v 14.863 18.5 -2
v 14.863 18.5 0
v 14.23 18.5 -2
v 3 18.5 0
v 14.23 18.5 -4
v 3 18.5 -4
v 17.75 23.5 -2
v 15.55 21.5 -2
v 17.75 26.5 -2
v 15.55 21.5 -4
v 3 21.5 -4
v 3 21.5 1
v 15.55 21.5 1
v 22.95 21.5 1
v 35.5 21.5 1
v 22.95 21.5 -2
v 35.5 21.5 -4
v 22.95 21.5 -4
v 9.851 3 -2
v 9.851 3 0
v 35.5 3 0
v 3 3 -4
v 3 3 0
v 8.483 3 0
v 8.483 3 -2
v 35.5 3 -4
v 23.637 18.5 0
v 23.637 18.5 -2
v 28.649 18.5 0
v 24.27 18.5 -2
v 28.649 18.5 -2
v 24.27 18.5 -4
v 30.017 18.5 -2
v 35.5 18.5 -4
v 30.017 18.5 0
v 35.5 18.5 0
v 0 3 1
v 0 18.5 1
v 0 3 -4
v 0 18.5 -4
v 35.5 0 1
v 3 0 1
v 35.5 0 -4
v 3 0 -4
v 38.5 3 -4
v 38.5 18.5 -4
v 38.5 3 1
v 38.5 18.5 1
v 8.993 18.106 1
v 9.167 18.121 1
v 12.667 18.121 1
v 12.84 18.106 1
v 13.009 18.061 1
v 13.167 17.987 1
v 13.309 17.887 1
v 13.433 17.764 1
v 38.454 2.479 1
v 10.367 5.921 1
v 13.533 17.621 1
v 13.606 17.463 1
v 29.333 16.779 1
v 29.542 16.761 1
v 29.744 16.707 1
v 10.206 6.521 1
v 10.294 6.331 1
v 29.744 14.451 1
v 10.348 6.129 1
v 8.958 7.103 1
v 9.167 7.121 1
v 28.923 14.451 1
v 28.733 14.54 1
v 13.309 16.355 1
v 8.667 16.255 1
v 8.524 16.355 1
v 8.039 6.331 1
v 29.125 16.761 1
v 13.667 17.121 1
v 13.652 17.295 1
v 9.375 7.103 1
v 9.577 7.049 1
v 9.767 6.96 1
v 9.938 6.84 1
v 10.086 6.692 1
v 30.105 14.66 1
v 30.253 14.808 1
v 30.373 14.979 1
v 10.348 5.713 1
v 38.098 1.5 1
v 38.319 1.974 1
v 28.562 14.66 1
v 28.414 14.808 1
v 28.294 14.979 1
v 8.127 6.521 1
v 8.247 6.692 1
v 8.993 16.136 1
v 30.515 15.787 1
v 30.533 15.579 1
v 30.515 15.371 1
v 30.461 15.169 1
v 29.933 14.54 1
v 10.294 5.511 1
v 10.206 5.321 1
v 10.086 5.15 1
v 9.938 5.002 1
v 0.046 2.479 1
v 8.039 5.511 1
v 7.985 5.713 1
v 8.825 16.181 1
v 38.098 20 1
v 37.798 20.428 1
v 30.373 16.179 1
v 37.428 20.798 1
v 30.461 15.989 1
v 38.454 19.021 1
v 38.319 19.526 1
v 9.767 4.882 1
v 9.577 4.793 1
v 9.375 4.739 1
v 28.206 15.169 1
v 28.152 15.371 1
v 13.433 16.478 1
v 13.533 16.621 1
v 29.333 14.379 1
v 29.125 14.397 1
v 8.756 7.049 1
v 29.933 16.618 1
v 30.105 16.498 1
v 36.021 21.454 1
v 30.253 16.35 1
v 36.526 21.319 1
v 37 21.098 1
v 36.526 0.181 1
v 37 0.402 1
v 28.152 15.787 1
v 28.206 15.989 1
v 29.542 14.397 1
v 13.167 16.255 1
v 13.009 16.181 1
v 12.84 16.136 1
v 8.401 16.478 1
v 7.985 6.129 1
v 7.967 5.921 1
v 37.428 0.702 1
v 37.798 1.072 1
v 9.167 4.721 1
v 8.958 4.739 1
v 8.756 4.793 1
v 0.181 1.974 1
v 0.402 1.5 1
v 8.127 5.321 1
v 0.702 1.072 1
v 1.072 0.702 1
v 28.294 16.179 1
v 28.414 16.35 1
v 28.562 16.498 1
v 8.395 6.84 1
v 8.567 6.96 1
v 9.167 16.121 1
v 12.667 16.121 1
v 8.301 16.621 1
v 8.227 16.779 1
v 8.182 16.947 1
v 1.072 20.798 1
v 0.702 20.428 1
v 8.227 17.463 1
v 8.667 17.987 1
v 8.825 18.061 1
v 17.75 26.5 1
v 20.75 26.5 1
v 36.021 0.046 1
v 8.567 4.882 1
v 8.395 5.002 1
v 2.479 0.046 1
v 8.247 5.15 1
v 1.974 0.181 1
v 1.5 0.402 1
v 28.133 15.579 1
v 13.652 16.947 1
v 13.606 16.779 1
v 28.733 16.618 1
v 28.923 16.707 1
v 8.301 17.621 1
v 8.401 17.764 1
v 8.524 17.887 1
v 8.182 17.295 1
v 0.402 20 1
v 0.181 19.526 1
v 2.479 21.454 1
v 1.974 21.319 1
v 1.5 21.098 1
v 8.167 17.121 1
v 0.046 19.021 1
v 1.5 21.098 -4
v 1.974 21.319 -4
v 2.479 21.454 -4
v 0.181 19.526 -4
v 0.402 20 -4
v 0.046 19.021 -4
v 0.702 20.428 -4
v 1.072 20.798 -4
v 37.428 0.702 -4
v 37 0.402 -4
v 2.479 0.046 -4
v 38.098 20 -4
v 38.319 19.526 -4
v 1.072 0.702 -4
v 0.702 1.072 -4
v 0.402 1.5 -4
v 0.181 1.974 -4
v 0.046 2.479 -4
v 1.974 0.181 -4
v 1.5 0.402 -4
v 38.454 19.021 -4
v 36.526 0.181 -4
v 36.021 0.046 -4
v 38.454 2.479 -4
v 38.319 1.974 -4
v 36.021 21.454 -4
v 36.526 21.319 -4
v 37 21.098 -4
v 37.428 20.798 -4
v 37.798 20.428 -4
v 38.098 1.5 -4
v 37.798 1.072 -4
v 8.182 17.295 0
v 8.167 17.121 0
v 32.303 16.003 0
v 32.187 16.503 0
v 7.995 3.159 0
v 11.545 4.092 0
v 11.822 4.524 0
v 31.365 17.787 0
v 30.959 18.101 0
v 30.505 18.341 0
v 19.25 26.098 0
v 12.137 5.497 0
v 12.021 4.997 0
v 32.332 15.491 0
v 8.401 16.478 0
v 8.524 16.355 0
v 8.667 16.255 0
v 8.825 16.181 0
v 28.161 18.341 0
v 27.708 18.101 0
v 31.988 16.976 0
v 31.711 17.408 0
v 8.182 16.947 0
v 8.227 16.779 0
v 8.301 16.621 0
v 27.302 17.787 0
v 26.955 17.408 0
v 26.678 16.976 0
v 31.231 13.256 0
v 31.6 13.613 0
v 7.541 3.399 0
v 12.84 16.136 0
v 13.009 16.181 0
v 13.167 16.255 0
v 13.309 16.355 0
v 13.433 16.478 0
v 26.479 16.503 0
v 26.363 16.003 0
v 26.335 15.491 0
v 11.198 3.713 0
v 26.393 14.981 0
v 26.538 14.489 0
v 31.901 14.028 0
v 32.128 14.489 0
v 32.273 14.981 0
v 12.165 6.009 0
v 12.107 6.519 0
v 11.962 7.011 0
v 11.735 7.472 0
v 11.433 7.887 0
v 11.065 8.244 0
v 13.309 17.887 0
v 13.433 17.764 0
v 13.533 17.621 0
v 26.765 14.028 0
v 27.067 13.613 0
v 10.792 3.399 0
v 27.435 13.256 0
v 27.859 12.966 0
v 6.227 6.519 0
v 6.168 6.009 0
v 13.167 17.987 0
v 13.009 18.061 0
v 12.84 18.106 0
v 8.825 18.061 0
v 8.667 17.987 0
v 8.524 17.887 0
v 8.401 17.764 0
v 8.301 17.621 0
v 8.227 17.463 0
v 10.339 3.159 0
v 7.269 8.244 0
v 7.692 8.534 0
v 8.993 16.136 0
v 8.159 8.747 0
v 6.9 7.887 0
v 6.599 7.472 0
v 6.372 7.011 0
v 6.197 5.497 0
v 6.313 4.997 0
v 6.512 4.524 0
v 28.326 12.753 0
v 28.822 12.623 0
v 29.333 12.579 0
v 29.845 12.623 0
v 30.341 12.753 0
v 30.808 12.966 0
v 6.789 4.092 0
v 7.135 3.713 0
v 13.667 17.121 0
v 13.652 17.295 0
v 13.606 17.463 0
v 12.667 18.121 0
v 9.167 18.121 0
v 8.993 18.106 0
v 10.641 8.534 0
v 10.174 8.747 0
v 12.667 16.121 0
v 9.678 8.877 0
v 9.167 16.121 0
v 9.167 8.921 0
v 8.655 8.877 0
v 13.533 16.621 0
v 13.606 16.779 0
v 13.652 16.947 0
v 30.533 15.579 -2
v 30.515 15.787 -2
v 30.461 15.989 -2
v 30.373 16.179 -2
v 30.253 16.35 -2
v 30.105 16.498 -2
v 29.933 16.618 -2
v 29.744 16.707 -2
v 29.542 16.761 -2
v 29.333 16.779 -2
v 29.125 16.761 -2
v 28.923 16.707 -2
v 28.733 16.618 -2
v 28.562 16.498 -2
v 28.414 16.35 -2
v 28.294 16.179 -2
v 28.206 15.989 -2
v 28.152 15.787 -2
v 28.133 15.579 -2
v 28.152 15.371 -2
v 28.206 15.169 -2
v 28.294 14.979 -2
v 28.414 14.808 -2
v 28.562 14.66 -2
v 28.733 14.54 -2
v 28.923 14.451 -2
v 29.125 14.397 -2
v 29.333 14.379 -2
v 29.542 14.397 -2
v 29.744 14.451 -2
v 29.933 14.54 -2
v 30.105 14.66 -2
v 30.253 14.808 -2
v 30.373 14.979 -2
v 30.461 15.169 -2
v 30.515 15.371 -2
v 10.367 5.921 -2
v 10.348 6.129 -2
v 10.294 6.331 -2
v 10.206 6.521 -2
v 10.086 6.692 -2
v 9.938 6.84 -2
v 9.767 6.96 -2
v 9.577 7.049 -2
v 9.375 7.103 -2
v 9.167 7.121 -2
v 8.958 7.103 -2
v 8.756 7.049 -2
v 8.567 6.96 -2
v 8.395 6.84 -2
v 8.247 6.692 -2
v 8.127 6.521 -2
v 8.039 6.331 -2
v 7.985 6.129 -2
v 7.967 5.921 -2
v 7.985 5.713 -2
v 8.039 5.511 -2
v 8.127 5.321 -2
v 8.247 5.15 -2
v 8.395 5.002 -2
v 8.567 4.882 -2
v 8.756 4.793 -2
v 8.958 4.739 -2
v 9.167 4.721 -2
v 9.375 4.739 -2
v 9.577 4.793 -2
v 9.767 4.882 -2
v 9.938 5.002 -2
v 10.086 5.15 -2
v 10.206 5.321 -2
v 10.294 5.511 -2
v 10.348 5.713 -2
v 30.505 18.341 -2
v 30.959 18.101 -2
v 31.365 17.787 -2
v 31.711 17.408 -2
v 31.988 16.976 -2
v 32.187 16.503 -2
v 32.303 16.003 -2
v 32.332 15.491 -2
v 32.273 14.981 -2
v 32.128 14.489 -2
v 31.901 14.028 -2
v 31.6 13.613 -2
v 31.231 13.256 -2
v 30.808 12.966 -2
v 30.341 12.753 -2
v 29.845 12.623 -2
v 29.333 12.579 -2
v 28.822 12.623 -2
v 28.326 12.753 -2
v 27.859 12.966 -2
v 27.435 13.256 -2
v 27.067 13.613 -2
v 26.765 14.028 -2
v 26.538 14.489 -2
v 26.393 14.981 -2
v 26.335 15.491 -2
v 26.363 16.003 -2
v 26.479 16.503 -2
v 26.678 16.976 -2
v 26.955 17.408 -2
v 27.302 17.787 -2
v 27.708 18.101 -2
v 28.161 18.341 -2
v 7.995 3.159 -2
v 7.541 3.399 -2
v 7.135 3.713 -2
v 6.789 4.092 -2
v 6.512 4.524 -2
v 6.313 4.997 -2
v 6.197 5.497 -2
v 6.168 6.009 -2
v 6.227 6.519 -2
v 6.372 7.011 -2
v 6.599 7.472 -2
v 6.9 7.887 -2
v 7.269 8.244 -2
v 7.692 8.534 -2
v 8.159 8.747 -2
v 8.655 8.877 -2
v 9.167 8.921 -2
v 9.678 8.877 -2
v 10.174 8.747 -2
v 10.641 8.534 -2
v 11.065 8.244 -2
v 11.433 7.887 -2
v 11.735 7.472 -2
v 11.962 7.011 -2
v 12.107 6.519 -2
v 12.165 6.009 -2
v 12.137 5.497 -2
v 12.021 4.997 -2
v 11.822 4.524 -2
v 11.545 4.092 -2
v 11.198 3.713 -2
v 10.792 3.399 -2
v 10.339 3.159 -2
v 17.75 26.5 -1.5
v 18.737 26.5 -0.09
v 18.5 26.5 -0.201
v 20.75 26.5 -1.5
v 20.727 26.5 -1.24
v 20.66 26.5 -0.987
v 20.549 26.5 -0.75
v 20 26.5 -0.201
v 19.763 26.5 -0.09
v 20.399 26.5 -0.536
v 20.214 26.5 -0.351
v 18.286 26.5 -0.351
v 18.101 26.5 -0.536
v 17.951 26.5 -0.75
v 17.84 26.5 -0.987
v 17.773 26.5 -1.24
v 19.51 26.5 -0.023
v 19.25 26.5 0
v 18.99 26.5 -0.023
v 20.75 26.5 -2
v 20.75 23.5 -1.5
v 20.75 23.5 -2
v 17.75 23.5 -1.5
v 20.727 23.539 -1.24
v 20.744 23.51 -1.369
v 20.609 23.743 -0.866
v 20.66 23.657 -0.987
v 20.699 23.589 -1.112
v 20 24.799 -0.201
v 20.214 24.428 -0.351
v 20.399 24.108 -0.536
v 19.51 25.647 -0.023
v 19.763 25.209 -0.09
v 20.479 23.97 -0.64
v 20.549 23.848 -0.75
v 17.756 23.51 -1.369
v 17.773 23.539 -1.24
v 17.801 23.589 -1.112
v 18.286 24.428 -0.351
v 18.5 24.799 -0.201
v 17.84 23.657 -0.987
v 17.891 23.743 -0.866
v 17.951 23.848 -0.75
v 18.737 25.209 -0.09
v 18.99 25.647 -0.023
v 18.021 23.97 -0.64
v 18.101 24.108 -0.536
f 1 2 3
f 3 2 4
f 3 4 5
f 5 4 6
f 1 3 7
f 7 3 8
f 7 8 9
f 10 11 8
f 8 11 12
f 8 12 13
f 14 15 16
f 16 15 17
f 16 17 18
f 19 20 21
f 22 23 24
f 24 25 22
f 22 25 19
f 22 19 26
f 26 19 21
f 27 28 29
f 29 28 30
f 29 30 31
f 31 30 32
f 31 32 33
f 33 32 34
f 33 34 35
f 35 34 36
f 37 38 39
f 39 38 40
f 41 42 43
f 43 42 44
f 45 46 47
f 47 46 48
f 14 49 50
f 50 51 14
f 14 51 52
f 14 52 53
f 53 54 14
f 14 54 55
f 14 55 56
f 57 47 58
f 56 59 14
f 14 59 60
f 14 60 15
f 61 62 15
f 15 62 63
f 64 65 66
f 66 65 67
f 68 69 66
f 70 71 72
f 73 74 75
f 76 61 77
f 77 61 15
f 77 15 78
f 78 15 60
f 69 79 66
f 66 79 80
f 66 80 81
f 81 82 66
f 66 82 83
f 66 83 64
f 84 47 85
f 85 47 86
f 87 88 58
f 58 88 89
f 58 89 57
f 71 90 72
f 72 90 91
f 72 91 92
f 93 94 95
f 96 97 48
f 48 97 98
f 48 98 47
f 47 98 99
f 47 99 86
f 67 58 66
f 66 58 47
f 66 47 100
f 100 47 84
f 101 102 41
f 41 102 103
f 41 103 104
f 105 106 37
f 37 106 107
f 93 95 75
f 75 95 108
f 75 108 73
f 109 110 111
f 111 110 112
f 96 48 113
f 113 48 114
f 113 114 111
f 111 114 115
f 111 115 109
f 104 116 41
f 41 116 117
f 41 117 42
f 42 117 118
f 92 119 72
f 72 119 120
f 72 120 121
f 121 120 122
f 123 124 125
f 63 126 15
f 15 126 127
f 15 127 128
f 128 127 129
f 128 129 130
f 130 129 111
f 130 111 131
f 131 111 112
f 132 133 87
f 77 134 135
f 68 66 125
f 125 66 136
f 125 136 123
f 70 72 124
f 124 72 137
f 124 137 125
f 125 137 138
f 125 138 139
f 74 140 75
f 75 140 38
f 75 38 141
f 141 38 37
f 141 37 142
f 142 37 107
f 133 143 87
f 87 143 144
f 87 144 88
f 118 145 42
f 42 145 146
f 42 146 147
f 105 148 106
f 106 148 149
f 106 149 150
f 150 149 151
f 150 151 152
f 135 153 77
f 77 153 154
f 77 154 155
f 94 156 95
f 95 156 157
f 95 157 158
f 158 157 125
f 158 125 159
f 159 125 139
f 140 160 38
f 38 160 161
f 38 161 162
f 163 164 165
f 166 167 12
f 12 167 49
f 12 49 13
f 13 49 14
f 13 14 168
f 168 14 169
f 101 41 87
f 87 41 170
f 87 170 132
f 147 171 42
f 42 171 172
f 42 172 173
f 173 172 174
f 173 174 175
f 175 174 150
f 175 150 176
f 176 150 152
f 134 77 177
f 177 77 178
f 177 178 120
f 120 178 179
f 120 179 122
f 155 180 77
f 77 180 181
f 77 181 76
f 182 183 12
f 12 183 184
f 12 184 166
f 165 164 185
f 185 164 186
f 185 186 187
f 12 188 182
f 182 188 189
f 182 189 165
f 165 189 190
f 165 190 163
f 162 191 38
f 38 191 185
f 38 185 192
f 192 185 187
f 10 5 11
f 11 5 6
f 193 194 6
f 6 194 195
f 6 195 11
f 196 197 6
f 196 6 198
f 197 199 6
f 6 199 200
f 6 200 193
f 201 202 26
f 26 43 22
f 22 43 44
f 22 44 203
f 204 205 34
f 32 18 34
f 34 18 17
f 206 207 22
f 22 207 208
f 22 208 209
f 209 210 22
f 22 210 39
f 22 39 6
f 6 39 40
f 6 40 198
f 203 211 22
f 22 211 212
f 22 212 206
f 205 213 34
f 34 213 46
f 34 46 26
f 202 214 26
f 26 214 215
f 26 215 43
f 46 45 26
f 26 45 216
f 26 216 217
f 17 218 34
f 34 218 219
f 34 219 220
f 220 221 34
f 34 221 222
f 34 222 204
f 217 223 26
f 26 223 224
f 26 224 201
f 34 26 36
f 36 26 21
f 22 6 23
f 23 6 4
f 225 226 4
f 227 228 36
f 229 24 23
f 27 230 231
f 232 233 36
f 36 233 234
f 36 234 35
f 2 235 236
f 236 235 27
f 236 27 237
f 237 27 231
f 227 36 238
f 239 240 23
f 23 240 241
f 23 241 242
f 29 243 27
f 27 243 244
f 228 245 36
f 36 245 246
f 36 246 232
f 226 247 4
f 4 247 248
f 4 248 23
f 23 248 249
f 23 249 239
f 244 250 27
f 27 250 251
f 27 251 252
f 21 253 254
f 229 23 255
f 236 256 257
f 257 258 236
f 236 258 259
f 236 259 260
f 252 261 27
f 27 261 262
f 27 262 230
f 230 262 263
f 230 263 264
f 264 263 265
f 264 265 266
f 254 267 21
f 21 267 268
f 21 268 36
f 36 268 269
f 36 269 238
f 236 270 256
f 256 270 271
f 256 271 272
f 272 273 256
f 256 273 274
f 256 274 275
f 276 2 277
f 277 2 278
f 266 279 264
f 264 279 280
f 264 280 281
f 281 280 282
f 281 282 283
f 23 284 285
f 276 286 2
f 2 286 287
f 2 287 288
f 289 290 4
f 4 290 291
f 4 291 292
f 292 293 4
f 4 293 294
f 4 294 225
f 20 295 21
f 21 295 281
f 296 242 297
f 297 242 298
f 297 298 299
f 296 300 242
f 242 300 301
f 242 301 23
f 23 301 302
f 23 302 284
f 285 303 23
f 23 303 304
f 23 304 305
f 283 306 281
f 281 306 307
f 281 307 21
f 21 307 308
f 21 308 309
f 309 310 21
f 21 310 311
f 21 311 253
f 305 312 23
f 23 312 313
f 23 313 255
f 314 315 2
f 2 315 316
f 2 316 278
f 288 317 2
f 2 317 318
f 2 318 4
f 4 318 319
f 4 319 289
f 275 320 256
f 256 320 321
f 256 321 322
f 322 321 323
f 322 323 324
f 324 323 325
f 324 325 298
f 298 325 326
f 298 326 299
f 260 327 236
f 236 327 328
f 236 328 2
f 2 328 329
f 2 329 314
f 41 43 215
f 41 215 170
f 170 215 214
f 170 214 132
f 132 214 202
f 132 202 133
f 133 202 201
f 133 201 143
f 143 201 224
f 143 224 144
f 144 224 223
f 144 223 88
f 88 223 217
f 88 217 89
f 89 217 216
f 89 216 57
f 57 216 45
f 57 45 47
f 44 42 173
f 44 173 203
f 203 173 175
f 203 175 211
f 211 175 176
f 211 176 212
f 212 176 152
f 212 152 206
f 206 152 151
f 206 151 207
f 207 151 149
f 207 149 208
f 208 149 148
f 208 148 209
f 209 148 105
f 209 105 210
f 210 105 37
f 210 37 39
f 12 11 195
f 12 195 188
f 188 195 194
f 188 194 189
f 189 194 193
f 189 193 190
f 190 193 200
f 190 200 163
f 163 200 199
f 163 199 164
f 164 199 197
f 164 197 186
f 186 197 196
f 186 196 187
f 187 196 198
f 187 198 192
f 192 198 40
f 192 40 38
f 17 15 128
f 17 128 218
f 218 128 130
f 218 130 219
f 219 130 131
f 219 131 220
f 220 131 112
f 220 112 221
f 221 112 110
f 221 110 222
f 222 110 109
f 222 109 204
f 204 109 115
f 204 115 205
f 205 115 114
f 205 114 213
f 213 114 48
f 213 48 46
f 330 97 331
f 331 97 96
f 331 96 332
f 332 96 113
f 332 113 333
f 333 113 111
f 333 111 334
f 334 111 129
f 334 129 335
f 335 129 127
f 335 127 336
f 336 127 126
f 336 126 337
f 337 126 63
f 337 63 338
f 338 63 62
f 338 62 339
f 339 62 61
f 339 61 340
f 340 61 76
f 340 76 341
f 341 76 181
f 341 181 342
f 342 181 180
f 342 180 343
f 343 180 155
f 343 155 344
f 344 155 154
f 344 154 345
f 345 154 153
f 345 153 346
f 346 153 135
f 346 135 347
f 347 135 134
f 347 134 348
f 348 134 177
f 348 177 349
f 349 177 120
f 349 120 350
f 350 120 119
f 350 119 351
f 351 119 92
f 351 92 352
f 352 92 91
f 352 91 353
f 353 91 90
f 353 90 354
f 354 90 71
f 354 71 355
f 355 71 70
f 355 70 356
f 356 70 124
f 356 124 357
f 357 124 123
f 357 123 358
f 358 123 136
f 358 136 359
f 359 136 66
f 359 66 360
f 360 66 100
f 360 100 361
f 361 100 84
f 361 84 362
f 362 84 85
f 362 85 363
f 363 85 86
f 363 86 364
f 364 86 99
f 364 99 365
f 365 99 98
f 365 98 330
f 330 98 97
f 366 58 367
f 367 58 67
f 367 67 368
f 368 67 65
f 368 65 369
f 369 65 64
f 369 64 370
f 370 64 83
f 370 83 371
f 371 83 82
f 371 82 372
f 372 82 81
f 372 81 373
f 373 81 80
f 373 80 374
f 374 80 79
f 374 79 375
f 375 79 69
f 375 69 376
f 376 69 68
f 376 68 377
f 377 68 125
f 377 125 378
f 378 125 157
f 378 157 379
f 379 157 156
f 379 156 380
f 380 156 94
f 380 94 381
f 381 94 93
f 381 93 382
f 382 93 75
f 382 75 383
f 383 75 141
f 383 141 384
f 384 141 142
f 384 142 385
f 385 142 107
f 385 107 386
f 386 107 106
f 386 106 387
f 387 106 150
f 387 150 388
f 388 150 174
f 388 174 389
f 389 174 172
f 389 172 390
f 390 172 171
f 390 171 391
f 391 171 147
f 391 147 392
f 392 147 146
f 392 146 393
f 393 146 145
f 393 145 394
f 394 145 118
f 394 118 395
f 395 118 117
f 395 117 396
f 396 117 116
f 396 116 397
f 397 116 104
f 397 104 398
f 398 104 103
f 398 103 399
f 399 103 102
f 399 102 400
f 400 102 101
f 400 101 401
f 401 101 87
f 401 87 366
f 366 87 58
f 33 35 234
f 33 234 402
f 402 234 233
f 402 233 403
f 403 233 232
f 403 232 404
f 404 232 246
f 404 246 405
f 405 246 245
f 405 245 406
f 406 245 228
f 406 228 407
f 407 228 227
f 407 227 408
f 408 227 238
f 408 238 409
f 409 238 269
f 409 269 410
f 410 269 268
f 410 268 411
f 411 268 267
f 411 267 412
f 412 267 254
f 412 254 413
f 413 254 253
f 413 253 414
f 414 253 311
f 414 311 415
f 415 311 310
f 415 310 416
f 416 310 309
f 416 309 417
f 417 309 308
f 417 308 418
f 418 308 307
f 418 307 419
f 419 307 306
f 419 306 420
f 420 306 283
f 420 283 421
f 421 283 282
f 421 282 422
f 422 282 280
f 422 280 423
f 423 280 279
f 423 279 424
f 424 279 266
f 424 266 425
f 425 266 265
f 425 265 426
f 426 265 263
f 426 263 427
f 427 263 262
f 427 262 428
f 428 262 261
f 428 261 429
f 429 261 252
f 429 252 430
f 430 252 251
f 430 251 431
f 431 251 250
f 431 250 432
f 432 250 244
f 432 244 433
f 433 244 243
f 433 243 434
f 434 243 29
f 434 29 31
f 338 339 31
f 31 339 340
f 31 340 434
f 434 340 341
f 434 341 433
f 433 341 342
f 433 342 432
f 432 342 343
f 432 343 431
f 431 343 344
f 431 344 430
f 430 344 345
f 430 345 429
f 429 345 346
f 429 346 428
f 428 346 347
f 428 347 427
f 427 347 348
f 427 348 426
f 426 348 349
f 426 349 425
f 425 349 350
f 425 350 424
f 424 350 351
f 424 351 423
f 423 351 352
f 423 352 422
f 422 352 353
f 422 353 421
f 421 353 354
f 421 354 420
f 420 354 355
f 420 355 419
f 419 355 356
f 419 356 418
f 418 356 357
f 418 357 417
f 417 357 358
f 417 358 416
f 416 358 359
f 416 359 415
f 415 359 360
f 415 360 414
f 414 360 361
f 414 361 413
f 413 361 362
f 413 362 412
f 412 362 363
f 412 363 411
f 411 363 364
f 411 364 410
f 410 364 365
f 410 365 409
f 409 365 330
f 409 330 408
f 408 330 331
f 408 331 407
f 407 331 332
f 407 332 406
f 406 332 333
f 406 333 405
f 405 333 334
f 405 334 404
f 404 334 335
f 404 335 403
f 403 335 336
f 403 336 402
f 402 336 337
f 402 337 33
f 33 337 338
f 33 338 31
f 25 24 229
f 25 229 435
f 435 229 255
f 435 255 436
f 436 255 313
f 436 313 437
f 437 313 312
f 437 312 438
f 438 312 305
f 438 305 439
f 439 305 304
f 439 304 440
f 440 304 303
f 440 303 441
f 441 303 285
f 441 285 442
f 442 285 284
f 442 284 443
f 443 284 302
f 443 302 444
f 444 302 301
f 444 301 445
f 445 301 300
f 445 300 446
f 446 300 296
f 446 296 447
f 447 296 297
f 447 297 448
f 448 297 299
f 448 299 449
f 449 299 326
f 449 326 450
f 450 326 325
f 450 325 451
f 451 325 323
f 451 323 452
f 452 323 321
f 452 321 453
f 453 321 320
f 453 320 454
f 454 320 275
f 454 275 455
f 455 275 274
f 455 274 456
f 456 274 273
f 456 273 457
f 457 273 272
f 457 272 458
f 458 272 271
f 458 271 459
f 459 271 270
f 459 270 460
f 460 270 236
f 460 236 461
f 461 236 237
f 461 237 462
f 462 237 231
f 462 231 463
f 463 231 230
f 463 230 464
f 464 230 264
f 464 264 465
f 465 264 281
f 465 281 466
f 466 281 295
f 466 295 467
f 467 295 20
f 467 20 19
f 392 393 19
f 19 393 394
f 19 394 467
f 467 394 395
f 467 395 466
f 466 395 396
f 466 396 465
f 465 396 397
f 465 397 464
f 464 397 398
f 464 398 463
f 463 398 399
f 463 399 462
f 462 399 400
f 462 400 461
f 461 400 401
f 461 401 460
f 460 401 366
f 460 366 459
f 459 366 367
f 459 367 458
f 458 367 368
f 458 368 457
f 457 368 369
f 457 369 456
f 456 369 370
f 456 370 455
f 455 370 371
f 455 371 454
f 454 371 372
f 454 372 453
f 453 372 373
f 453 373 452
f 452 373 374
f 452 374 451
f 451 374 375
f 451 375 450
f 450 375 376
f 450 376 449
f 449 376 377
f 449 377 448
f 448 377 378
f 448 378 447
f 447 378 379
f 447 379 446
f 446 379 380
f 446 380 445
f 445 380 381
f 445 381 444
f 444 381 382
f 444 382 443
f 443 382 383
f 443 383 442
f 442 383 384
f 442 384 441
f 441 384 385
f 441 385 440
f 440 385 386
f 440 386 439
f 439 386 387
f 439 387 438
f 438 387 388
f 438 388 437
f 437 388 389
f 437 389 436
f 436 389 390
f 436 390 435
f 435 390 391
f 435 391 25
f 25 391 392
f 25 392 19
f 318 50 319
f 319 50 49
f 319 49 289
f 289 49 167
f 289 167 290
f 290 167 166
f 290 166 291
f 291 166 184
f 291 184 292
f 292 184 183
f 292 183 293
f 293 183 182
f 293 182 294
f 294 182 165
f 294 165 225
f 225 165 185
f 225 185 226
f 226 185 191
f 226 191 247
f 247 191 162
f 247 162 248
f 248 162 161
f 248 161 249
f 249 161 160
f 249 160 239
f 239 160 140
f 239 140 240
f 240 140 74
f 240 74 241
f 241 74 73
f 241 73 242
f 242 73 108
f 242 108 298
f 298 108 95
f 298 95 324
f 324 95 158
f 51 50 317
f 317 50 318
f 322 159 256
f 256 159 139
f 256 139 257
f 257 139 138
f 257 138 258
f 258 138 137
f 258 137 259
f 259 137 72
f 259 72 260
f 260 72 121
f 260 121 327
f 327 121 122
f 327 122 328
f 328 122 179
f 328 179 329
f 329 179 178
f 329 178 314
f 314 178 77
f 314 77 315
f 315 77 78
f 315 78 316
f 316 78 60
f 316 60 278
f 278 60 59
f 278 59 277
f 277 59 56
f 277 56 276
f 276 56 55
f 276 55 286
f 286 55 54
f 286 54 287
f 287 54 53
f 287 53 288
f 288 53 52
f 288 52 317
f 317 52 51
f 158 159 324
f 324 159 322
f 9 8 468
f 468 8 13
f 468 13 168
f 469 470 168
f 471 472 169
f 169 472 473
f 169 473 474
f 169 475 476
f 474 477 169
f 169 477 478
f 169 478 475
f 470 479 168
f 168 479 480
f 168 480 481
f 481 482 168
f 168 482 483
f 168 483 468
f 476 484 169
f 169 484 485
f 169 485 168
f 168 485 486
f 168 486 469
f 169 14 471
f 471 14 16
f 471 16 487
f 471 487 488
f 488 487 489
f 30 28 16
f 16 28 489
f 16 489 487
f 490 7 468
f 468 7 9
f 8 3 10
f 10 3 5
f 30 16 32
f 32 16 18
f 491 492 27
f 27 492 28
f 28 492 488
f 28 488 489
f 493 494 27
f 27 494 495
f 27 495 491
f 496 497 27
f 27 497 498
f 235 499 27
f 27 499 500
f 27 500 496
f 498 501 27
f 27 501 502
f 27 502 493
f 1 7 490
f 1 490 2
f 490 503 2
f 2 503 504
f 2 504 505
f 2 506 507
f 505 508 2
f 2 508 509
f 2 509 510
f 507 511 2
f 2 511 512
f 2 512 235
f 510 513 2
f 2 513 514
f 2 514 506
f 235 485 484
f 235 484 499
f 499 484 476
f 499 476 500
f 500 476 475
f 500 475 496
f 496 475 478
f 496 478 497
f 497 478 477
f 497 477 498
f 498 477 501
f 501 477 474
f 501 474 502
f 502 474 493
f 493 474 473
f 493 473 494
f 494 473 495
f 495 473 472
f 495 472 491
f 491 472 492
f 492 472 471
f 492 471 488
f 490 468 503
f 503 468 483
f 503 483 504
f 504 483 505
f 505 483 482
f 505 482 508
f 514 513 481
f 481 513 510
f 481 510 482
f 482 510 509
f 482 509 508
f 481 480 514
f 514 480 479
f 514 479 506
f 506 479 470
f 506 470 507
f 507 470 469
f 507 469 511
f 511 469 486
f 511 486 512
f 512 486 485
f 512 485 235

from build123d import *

# Parameters (mm, degrees)
SKICA1_W                 = 38.5
SKICA1_H                 = 21.5
P_IDAT_VYSUNUT_M1_DEPTH  = 1
SKICA2_W                 = 38.5
SKICA2_H                 = 21.5
SKICA2_W_2               = 32.5
SKICA2_H_2               = 15.5
P_IDAT_VYSUNUT_M2_DEPTH  = 4
ZAOBLIT1_R               = 3
SKICA3_R                 = 1.2
ODEBRAT_VYSUNUT_M1_DEPTH = 2
SKICA4_R                 = 1.2
P_IDAT_VYSUNUT_M5_DEPTH  = 2
ODEBRAT_VYSUNUT_M2_DEPTH = 2
P_IDAT_VYSUNUT_M6_DEPTH  = 1
P_IDAT_VYSUNUT_M7_DEPTH  = 2
ODEBRAT_VYSUNUT_M5_DEPTH = 2
SKICA10_W                = 3
SKICA10_H                = 3
ODEBRAT_VYSUNUT_M6_DEPTH = 2
ZKOSEN_2_SIZE            = 2.886751346
ZKOSEN_2_SIZE_2          = 5
ZKOSEN_3_SIZE            = 2.886751346
ZKOSEN_3_SIZE_2          = 5
ZAOBLIT4_R               = 1.5


with BuildPart() as part:
    # Skica1 → Přidat vysunutím1 (new body)
    with BuildSketch(Plane.XY):
        with Locations((19.25, 10.75)):
            Rectangle(SKICA1_W, SKICA1_H)
    extrude(amount=P_IDAT_VYSUNUT_M1_DEPTH)

    # Skica2 → Přidat vysunutím2 (add)
    with BuildSketch(Plane(origin=(0, 0, 0), x_dir=(-1, 0, 0), z_dir=(0, 0, -1))):
        with Locations((-19.25, 10.75)):
            Rectangle(SKICA2_W, SKICA2_H)
        with Locations((-19.25, 10.75)):
            Rectangle(SKICA2_W_2, SKICA2_H_2, mode=Mode.SUBTRACT)
    extrude(amount=P_IDAT_VYSUNUT_M2_DEPTH)

    # Zaoblit1
    zaoblit1_edges = [part.edges().sort_by_distance(p)[0] for p in [
        (0, 0, -1.5),
        (38.5, 0, -1.5),
        (38.5, 21.5, -1.5),
        (0, 21.5, -1.5),
    ]]
    fillet(zaoblit1_edges, radius=ZAOBLIT1_R)

    # Skica3 → Odebrat vysunutím1 (cut)
    with BuildSketch(Plane.XY.offset(1)):
        with Locations((9.166704, 5.920968857)):
            Circle(SKICA3_R)
        with Locations((29.333296, 15.579031143)):
            Circle(SKICA3_R)
    extrude(amount=-ODEBRAT_VYSUNUT_M1_DEPTH, mode=Mode.SUBTRACT)

    # Skica4 → Přidat vysunutím5 (add)
    # profile 1 of 2: a face of its own
    with BuildSketch(Plane(origin=(0, 0, 0), x_dir=(-1, 0, 0), z_dir=(0, 0, -1))):
        with BuildLine():
            ThreePointArc((-30.017358084, 18.5), (-31.197137966, 13.228266772), (-26.333296, 15.579031143))
            ThreePointArc((-26.333296, 15.579031143), (-26.98253163, 17.442873109), (-28.649233916, 18.5))
            Line((-28.649233916, 18.5), (-30.017358084, 18.5))
        make_face()
        with Locations(Location((-29.333296, 15.579031143, 0), (0, 0, 180))):
            Circle(SKICA4_R, mode=Mode.SUBTRACT)
    # profile 2 of 2: a face of its own
    with BuildSketch(Plane(origin=(0, 0, 0), x_dir=(-1, 0, 0), z_dir=(0, 0, -1))):
        with BuildLine():
            ThreePointArc((-8.482641916, 3), (-6.81593963, 4.057126891), (-6.166704, 5.920968857))
            ThreePointArc((-6.166704, 5.920968857), (-11.030545966, 8.271733228), (-9.850766084, 3))
            Line((-9.850766084, 3), (-8.482641916, 3))
        make_face()
        with Locations(Location((-9.166704, 5.920968857, 0), (0, 0, 180))):
            Circle(SKICA4_R, mode=Mode.SUBTRACT)
    extrude(amount=P_IDAT_VYSUNUT_M5_DEPTH)

    # Skica5 → Odebrat vysunutím2 (cut)
    with BuildSketch(Plane.XY.offset(1)):
        with BuildLine():
            Line((9.166704, 18.120968857), (12.666704, 18.120968857))
            ThreePointArc((12.666704, 18.120968857), (13.666704, 17.120968857), (12.666704, 16.120968857))
            Line((12.666704, 16.120968857), (9.166704, 16.120968857))
            ThreePointArc((9.166704, 16.120968857), (8.166704, 17.120968857), (9.166704, 18.120968857))
        make_face()
    extrude(amount=-ODEBRAT_VYSUNUT_M2_DEPTH, mode=Mode.SUBTRACT)

    # Skica7 → Přidat vysunutím6 (add)
    with BuildSketch(Plane.XY.offset(1)):
        Polygon((15.55, 21.5), (17.75, 26.5), (20.75, 26.5), (22.95, 21.5), align=None)
    extrude(amount=-P_IDAT_VYSUNUT_M6_DEPTH)

    # Skica8 → Přidat vysunutím7 (add)
    with BuildSketch(Plane(origin=(0, 0, 0), x_dir=(-1, 0, 0), z_dir=(0, 0, -1))):
        Polygon((-15.55, 21.5), (-17.75, 26.5), (-17.75, 21.5), align=None)
        Polygon((-20.75, 26.5), (-22.95, 21.5), (-20.75, 21.5), align=None)
    extrude(amount=P_IDAT_VYSUNUT_M7_DEPTH)

    # Skica9 → Odebrat vysunutím5 (cut)
    with BuildSketch(Plane(origin=(0, 0, -4), x_dir=(-1, 0, 0), z_dir=(0, 0, -1))):
        Polygon((-22.95, 21.5), (-24.27, 18.5), (-14.23, 18.5), (-15.55, 21.5), align=None)
    extrude(amount=-ODEBRAT_VYSUNUT_M5_DEPTH, mode=Mode.SUBTRACT)

    # Skica10 → Odebrat vysunutím6 (cut)
    with BuildSketch(Plane(origin=(0, 0, -2), x_dir=(-1, 0, 0), z_dir=(0, 0, -1))):
        with Locations((-19.25, 20)):
            Rectangle(SKICA10_W, SKICA10_H)
    extrude(amount=-ODEBRAT_VYSUNUT_M6_DEPTH, mode=Mode.SUBTRACT)

    # Zkosení2
    # the kernel refuses this chamfer: 5, 2.886751346 mm, written as the material it takes off along each edge
    with BuildSketch(Plane(origin=(20.75, 18.5, -14.935428773), x_dir=(0.9983227437537926, -0.057893862402670485, 0), z_dir=(0, 0, 1))) as zkosen_2_piece_1:
        Polygon((ZKOSEN_2_SIZE * 0.998322743736, ZKOSEN_2_SIZE * 0.0578938624016), (-ZKOSEN_2_SIZE_2 * 0.0578938624027, ZKOSEN_2_SIZE_2 * 0.998322743754), (0, 0), align=None)
    extrude(amount=14.935428773, mode=Mode.SUBTRACT)

    # Zkosení3
    # the kernel refuses this chamfer: 5, 2.886751346 mm, written as the material it takes off along each edge
    with BuildSketch(Plane(origin=(17.75, 18.5, -14.935428773), x_dir=(-0.9983227437537926, -0.05789386240267058, 0), z_dir=(0, 0, 1))) as zkosen_3_piece_1:
        Polygon((ZKOSEN_3_SIZE * 0.998322743736, -ZKOSEN_3_SIZE * 0.0578938624016), (-ZKOSEN_3_SIZE_2 * 0.0578938624027, -ZKOSEN_3_SIZE_2 * 0.998322743754), (0, 0), align=None)
    extrude(amount=14.935428773, mode=Mode.SUBTRACT)

    # Zaoblit4
    # the kernel refuses this fillet: 1.5 mm, written as the material it adds along each edge
    with BuildSketch(Plane(origin=(17.75, 26.5, 0), x_dir=(1, 0, 0), z_dir=(0, -1, 0))) as zaoblit4_piece_1_section:
        with BuildLine():
            CenterArc((ZAOBLIT4_R, -ZAOBLIT4_R), ZAOBLIT4_R, 90, 90)
            Line((0, -ZAOBLIT4_R), (0, 0))
            Line((0, 0), (ZAOBLIT4_R, 0))
        make_face()
    zaoblit4_piece_1 = extrude(amount=6.75, mode=Mode.PRIVATE)
    zaoblit4_piece_1 = split(zaoblit4_piece_1, bisect_by=Plane(origin=(17.323921005, 25.531638648, -0.383561124), z_dir=(0.9153150324227655, -0.4027386142660173, 0)), keep=Keep.TOP, mode=Mode.PRIVATE)
    zaoblit4_piece_1 = split(zaoblit4_piece_1, bisect_by=Plane(origin=(18.56429614, 24.910402286, -0.383561124), z_dir=(-0.8660254037846095, 0.4999999999997042, 0)), keep=Keep.TOP, mode=Mode.PRIVATE)
    add(zaoblit4_piece_1)
    with BuildSketch(Plane(origin=(20.75, 19.75, 0), x_dir=(0, 0, -1), z_dir=(0, 1, 0))) as zaoblit4_piece_2_section:
        with BuildLine():
            CenterArc((ZAOBLIT4_R, ZAOBLIT4_R), ZAOBLIT4_R, 180, 90)
            Line((0, ZAOBLIT4_R), (0, 0))
            Line((0, 0), (ZAOBLIT4_R, 0))
        make_face()
    zaoblit4_piece_2 = extrude(amount=6.75, mode=Mode.PRIVATE)
    zaoblit4_piece_2 = split(zaoblit4_piece_2, bisect_by=Plane(origin=(21.176078995, 25.531638648, -0.383561124), z_dir=(-0.9153150324227657, -0.4027386142660168, 0)), keep=Keep.TOP, mode=Mode.PRIVATE)
    zaoblit4_piece_2 = split(zaoblit4_piece_2, bisect_by=Plane(origin=(19.93570386, 24.910402286, -0.383561124), z_dir=(0.8660254037846095, 0.4999999999997042, 0)), keep=Keep.TOP, mode=Mode.PRIVATE)
    add(zaoblit4_piece_2)


solid = part.part
